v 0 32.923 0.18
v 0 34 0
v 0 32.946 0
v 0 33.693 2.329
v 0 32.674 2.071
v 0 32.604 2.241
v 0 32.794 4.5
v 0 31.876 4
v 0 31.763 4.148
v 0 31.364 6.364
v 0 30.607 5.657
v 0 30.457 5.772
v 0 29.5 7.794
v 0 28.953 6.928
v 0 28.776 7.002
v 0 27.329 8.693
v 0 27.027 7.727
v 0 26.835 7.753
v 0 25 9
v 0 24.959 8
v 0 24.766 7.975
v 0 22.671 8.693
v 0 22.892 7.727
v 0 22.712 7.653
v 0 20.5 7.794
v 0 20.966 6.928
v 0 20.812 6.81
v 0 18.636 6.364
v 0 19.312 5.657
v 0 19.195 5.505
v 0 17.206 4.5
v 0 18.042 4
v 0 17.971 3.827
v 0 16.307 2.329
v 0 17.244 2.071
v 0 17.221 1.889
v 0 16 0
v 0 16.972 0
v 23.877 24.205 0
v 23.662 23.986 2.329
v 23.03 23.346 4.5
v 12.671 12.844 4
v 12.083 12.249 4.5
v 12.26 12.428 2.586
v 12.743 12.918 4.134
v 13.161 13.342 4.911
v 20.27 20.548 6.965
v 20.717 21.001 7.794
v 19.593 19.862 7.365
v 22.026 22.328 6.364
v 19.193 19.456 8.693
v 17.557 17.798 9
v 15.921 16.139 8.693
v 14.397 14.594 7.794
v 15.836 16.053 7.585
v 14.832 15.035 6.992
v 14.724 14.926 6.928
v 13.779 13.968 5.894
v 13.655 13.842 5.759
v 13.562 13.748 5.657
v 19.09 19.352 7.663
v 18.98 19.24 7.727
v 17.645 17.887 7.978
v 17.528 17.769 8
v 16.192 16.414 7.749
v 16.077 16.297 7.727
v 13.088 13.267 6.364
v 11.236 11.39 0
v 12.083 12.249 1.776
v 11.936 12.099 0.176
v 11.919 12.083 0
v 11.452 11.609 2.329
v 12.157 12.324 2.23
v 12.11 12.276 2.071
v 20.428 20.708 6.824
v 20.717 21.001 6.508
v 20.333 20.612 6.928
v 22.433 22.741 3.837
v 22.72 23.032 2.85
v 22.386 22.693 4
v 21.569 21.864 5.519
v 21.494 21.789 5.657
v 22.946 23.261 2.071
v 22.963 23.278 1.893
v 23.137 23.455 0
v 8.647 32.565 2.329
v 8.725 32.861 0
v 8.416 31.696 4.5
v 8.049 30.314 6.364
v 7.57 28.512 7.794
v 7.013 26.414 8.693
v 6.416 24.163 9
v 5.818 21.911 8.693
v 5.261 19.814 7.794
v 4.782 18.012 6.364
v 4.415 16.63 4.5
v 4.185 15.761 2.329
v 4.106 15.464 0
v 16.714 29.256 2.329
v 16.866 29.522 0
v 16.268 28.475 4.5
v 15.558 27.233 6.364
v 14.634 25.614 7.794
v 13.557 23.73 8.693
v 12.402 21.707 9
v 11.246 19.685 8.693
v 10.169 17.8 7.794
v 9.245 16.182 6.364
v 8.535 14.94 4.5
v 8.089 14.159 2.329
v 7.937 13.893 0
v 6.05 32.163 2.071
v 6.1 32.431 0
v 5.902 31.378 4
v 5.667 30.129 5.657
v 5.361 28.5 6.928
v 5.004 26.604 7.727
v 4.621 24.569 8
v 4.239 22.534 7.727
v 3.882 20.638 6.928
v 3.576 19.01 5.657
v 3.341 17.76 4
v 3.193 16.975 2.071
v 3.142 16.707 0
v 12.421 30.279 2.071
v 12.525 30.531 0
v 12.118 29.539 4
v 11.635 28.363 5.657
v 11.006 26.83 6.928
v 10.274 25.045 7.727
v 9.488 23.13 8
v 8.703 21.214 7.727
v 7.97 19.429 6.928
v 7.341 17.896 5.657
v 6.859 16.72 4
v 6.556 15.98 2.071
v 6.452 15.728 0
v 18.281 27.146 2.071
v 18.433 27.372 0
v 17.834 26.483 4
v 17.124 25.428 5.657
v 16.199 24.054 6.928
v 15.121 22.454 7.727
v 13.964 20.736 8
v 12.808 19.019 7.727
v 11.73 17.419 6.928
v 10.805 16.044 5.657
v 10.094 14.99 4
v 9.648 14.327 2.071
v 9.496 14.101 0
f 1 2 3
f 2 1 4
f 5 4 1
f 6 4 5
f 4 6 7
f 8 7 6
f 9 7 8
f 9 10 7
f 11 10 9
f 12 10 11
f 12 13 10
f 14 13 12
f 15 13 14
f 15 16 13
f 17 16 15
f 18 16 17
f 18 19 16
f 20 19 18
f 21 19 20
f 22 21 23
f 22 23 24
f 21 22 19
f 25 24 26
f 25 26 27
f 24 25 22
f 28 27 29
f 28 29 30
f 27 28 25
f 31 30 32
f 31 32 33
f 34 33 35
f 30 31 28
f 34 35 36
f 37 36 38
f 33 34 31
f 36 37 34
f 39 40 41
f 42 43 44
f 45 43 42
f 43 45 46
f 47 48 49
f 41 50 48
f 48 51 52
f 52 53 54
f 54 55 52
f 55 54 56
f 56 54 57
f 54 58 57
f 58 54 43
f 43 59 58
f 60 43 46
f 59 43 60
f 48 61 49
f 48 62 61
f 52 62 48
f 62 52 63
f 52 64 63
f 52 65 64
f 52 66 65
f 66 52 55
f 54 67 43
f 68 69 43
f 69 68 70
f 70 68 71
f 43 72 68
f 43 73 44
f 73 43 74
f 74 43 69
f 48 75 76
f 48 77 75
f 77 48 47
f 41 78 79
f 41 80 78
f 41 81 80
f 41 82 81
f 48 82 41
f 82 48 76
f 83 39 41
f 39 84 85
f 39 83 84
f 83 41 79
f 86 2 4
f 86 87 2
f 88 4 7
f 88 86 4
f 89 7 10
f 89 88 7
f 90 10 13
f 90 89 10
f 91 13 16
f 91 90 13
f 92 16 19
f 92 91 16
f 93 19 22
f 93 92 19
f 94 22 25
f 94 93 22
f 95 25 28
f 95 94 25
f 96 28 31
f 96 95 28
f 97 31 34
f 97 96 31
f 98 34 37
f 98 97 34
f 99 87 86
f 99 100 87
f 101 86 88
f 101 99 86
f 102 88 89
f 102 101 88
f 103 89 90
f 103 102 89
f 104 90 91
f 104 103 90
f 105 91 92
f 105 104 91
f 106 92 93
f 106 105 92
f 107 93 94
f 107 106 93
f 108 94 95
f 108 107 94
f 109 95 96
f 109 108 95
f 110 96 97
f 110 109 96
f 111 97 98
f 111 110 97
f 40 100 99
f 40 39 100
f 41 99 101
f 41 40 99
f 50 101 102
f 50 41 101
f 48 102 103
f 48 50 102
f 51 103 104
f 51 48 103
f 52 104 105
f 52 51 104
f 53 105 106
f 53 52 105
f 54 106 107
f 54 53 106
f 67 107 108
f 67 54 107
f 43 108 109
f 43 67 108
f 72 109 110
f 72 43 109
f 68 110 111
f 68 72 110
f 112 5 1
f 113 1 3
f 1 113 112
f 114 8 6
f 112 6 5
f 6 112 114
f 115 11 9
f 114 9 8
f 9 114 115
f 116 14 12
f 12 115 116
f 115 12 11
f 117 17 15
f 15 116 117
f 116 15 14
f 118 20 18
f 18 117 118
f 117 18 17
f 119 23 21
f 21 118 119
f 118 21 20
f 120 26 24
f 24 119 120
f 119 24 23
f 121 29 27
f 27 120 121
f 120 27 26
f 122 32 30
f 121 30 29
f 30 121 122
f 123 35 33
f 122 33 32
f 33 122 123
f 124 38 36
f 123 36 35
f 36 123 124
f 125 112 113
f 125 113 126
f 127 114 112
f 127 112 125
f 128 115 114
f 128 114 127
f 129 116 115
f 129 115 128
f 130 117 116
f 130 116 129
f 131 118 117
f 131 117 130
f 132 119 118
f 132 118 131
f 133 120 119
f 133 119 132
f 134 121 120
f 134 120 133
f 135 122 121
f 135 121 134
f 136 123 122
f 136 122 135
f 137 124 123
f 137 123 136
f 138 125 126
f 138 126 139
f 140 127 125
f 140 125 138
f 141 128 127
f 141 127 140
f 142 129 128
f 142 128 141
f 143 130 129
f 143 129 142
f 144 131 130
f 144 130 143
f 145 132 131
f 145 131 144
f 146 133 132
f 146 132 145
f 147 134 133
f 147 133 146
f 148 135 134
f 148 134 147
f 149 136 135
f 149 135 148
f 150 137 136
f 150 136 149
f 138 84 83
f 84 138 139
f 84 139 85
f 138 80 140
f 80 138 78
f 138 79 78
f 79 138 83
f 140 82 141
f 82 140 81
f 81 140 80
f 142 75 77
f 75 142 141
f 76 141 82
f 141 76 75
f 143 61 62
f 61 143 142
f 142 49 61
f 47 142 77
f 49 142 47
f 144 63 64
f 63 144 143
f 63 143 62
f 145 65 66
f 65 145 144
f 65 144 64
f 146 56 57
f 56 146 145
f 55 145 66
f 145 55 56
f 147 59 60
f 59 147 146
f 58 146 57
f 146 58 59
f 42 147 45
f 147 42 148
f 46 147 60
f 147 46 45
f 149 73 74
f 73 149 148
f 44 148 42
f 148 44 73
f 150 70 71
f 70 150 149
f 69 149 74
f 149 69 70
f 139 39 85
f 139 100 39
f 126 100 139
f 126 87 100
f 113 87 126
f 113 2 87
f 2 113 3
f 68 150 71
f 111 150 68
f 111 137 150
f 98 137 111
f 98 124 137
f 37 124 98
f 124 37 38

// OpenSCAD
// file: ../build_environments.scad
// build_environments.scad: modules to build level sections
//

module pool(diameter=10.0, wall_height=2.0, step_width=3.0, connections=[])
{
    difference() {
        union() {
        difference() {
            cylinder(h=0.5,r1=diameter+step_width,r2=diameter+step_width,$fn=48);
            translate([0,0,-0.1])
                cylinder(h=0.7,r1=diameter,r2=diameter,$fn=48);
        }
        difference() {
            cylinder(h=wall_height,r1=diameter+step_width+1.0,r2=diameter+step_width+1.0,$fn=48);
            translate([0,0,-0.1])
                cylinder(h=wall_height+0.2,r1=diameter+step_width,r2=diameter+step_width,$fn=48);
        }
        }
    
        for (c = connections)
        {
            rotate([0,90,0]) {
                angle = atan2(c[1],c[0]);
                rotate([-angle,0,0]) {
                    cylinder(h=diameter+5.0,r1=c[2],r2=c[2],$fn=48);
                }
            }
        }
    }
}

module straight(length=10.0, width=2.0, dy1=0.0, dy2=0.0, dz=0.0)
{
    dims = [0, 0, 0, 0, 0, (dz/length)];
    matrix = [
        [ 1, dims[0], dims[1], 0 ],
        [ dims[2], 1, dims[4], 0 ],
        [ dims[5], dims[3], 1, 0 ],
        [ 0, 0, 0, 1 ]
    ];
    multmatrix(matrix)
    difference() {
        translate([dy1,0,0])
        union() {
            rotate([0,90,0]) {
                difference() {
                    cylinder(h=(length-dy1-dy2),r1=width+1.0,r2=width+1.0,$fn=24);
                    translate([0,0,-0.1])
                        cylinder(h=(length-dy1-dy2+0.2),r1=width,r2=width,$fn=24);
                }
                difference() {
                    cylinder(h=1.0,r1=width+2.0,r2=width+2.0,$fn=24);
                    translate([0,0,-0.1])
                        cylinder(h=1.2,r1=width,r2=width,$fn=24);
                }
                translate([0,0,(length-dy1-dy2)-1.0]) {
                    difference() {
                        cylinder(h=1.0,r1=width+2.0,r2=width+2.0,$fn=24);
                        translate([0,0,-0.1])
                            cylinder(h=1.2,r1=width,r2=width,$fn=24);
                    }
                }
            }
        }
        translate([0,0,-(2*width+4.0)/2])
            cube([3*length,3*length,2*width+4.0],center=true);
    }
}

module curve(p0=[0,0], center=[0,0], dir=1, angle=0.0, width=2.0)
{
    radius = sqrt((p0[0]-center[0])*(p0[0]-center[0]) + (p0[1]-center[1])*(p0[1]-center[1]));
    if (dir == 0) {
        difference() {
            rotate([0,0,-90])
            difference() {
                rotate_extrude(angle = angle, convexity = 10, $fn=32)
                    translate([radius, 0, 0])
                        circle(r = width+1.0,$fn=24);
                rotate([0,0,-1.0])
                    rotate_extrude(angle = angle+2.0, convexity = 10, $fn=32)
                        translate([radius, 0, 0])
                            circle(r = width,$fn=24);
            }
            translate([0,0,-(2*width+4.0)/2])
                cube([5*radius,5*radius,2*width+4.0],center=true);
        }
    }
    else {
        difference() {
            rotate([0,0,90])
            difference() {
                rotate_extrude(angle = -angle, convexity = 10, $fn=32)
                    translate([radius, 0, 0])
                        circle(r = width+1.0,$fn=24);
                rotate([0,0,1.0])
                    rotate_extrude(angle = -angle-2.0, convexity = 10, $fn=32)
                        translate([radius, 0, 0])
                            circle(r = width,$fn=24);
            }
            translate([0,0,-(2*width+4.0)/2])
                cube([5*radius,5*radius,2*width+4.0],center=true);
        }
    }

}

// test pool
//pool(diameter=12.0000, wall_height=3.0000, step_width=3.0000, connections=[[0.0000,-26.0000,2.0000], [23.6074,0.0000,2.0000]]);

// test straight, slope
//straight(length=26.0000, width=2.0000, dy1=11.8322, dy2=6.7082, dz=0.0000);
//straight(length=29.1549, width=12.0000, dy1=0.0000, dy2=0.0000, dz=-15.0000);

// test curve
//curve(p0=[23.6074, 0.0000], center=[23.6074, 5.0000], dir=0, angle=60.1011, width=2.0000);
//curve(p0=[33.6426, 12.4219], center=[37.9771, 9.9295], dir=1, angle=120.4627, width=2.0000);
// main file
use <../build_environments.scad>;
curve(p0=[303.8453, 374.9592], center=[295.4129, 351.4242], dir=1, angle=44.6097, width=8.0000);
